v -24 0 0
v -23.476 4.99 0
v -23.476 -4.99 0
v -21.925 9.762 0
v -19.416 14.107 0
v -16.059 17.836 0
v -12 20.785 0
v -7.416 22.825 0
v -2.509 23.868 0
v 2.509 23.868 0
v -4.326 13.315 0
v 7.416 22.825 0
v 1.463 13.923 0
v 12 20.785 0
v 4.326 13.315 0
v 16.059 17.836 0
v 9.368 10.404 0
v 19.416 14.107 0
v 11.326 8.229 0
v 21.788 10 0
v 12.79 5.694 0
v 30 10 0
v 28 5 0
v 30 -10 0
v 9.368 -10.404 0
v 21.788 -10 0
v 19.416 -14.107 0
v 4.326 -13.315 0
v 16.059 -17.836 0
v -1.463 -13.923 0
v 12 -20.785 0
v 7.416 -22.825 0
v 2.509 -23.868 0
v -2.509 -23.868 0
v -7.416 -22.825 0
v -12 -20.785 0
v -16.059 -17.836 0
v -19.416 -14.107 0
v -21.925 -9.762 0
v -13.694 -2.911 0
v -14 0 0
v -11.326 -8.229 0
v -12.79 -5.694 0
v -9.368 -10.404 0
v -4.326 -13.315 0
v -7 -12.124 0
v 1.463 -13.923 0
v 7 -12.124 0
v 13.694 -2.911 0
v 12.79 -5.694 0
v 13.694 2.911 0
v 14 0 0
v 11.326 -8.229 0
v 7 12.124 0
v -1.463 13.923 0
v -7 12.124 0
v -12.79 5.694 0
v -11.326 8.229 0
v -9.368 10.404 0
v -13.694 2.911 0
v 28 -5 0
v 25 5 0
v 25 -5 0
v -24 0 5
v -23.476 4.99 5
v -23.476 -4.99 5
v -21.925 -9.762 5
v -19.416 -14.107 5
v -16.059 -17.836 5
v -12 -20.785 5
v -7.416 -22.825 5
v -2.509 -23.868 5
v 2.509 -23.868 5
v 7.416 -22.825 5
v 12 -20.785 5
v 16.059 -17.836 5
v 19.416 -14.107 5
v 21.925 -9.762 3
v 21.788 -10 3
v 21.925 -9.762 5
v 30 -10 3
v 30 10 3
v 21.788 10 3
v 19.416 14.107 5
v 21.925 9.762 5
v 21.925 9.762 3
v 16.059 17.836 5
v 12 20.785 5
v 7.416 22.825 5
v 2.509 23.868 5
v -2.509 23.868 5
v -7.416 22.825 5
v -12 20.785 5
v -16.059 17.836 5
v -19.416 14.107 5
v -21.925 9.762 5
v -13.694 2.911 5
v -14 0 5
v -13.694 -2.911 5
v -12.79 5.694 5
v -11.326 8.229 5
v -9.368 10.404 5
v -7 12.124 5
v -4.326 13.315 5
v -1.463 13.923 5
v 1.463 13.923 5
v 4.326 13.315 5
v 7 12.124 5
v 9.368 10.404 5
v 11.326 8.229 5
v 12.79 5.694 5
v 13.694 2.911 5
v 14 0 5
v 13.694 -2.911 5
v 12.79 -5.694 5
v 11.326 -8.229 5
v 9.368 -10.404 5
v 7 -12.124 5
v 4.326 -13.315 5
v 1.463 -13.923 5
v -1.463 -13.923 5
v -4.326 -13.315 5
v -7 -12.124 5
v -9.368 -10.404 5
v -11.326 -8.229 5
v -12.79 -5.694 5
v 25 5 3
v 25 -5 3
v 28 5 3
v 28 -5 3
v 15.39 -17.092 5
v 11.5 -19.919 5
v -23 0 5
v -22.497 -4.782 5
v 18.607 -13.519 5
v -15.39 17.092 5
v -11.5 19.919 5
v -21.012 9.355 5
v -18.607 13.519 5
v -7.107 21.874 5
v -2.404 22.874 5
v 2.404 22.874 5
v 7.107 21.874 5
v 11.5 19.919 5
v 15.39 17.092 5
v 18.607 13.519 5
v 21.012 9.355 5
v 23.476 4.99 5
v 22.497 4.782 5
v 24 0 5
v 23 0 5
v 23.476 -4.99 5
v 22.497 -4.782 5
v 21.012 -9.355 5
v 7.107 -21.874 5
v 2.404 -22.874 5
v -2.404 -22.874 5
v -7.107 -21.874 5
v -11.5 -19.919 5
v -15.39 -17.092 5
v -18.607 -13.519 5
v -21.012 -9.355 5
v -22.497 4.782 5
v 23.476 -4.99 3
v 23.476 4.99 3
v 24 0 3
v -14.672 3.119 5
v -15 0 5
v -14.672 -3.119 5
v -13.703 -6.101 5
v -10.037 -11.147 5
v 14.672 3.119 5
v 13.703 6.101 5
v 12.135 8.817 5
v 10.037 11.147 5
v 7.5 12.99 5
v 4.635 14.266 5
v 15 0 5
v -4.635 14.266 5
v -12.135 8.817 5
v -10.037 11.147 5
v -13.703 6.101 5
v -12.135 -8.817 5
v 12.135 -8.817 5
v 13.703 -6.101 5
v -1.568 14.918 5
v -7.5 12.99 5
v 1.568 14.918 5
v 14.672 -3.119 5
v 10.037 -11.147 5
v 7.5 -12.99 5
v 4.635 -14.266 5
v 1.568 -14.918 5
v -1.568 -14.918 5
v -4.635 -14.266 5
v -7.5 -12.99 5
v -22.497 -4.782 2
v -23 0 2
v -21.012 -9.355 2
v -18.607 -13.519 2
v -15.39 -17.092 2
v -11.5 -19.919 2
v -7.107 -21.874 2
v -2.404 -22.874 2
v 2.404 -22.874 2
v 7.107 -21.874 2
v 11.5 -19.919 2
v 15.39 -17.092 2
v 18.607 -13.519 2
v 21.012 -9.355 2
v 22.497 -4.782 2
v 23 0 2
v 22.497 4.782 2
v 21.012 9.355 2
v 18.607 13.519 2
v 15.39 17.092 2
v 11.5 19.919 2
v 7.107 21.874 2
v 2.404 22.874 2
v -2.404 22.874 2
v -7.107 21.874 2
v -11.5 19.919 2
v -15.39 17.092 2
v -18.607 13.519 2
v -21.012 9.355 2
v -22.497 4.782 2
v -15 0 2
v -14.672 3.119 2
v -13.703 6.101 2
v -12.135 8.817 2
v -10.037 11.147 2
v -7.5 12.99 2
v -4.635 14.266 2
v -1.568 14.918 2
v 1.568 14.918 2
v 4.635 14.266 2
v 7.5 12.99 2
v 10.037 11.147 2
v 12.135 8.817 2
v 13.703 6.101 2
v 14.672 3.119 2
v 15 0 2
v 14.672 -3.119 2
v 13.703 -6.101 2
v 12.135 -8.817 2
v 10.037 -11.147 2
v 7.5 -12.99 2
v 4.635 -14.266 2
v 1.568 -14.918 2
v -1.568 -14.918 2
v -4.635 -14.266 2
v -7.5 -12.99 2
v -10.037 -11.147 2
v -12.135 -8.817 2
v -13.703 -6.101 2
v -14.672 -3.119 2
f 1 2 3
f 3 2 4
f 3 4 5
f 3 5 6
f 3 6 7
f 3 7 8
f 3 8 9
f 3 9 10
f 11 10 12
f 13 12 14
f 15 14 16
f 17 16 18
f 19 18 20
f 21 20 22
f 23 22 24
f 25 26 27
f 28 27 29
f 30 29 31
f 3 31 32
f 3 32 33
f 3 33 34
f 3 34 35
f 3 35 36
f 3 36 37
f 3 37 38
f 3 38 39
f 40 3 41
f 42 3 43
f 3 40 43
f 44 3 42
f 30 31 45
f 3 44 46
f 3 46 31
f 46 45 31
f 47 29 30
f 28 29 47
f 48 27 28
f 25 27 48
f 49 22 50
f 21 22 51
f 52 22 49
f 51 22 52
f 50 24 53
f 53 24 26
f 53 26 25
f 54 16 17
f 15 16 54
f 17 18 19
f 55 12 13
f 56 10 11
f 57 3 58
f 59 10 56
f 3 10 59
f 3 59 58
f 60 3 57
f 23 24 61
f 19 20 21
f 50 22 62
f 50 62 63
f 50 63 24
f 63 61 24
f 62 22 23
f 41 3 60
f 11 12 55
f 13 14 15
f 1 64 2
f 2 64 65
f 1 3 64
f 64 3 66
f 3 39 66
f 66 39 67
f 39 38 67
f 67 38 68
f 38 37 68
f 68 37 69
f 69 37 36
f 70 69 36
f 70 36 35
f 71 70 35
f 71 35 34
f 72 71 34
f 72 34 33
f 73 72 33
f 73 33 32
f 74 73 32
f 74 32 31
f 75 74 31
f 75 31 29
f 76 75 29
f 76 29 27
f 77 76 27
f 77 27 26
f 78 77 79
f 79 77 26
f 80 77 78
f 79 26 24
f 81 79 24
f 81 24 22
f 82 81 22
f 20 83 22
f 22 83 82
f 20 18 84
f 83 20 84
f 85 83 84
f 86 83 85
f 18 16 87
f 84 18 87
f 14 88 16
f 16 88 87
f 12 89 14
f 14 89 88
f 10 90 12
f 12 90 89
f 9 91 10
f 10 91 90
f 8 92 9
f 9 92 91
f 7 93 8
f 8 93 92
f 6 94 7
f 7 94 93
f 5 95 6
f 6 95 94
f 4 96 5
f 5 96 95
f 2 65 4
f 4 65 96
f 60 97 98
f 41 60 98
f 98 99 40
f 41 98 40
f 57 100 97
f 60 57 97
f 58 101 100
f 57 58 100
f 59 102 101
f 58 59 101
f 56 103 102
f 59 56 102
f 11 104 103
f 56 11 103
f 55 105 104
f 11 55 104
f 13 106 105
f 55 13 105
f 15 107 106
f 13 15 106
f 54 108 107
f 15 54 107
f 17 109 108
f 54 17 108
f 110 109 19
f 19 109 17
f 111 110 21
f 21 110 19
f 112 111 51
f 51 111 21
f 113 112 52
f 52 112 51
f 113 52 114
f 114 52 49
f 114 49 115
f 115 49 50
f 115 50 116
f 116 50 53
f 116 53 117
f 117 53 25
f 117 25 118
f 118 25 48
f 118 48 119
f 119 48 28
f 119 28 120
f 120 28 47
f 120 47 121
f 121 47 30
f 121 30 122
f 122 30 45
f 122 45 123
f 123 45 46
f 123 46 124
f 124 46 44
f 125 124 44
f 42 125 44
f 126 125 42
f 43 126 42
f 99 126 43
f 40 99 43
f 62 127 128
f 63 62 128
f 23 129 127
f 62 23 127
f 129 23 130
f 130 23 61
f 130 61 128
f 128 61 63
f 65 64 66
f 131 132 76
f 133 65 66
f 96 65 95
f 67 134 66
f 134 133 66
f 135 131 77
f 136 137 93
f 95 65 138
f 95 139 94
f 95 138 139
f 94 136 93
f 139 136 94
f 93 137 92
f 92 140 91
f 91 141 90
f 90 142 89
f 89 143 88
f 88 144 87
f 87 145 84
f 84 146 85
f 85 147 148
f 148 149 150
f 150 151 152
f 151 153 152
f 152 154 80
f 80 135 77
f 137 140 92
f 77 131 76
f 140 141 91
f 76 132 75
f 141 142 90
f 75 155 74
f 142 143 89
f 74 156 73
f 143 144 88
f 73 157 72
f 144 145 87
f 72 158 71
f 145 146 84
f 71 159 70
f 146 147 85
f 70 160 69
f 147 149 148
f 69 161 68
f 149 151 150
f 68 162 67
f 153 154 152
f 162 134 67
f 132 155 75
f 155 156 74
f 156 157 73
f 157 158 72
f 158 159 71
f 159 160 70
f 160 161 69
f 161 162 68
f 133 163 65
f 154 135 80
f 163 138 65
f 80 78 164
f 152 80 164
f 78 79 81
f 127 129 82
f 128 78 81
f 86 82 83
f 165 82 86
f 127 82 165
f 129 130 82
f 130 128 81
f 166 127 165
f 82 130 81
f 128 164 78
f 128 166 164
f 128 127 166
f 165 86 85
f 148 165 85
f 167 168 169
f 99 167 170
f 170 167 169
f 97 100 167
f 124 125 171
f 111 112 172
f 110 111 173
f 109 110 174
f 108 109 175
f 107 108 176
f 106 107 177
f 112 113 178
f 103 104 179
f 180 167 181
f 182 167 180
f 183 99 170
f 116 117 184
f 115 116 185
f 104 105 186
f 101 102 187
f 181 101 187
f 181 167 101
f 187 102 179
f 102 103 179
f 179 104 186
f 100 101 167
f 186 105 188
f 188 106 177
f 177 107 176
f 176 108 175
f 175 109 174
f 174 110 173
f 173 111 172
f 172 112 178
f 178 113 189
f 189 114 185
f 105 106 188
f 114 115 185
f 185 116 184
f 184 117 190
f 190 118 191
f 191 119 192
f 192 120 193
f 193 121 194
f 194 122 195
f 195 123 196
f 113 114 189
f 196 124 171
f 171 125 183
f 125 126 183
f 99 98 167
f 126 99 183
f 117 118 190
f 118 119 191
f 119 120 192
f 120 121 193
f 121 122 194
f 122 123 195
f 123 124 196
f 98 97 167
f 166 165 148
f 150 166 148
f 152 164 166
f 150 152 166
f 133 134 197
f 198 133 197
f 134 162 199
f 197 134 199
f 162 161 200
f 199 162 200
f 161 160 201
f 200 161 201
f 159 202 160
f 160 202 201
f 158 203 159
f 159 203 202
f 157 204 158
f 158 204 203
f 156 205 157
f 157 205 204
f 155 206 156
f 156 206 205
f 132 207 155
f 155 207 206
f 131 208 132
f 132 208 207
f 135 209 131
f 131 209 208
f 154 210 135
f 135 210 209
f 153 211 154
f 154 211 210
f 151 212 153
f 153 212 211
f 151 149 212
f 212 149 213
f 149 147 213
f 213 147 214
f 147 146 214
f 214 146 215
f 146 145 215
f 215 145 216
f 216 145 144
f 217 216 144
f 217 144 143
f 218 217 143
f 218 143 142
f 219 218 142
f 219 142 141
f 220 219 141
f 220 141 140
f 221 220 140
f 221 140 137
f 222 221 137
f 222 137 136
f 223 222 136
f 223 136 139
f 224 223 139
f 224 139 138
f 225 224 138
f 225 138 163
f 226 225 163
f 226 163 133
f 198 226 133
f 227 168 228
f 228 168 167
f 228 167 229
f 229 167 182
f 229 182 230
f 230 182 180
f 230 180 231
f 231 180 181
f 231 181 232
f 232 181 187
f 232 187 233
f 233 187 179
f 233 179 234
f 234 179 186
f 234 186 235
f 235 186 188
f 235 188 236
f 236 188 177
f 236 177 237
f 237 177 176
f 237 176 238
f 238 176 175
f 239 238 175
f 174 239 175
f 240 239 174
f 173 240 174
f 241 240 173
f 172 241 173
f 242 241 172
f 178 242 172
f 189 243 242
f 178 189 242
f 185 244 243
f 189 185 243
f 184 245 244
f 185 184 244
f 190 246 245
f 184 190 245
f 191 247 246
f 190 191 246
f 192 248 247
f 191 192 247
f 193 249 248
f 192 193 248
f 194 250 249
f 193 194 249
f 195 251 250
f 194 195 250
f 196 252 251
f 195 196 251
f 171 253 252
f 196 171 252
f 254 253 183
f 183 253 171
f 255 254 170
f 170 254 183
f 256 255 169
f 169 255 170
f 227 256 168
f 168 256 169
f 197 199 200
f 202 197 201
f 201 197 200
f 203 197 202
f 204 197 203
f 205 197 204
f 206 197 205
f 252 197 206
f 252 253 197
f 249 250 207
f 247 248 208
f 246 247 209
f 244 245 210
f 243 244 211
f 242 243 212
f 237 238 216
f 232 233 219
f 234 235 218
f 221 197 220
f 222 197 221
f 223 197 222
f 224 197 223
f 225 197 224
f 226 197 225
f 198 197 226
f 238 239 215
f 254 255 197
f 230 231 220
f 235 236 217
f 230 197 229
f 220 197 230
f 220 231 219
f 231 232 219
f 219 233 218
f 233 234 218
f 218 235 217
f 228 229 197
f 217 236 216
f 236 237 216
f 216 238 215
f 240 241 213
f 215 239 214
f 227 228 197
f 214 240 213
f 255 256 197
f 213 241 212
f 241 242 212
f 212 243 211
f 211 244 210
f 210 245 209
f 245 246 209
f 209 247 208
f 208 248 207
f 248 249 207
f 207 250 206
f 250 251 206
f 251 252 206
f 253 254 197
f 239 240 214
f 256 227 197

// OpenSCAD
difference(){

	union(){
		cylinder(5,24,24);

		translate([10,-10,0]){
			cube([20,20,3]);
		}
	}

	translate([0,0,2]){
		difference(){
			cylinder(3,23,23);
			cylinder(5,15,15);
		}
	}

	cylinder(12,14,14);

	translate([25,-5,0]){
		cube([3,10,10]);
	}
}
